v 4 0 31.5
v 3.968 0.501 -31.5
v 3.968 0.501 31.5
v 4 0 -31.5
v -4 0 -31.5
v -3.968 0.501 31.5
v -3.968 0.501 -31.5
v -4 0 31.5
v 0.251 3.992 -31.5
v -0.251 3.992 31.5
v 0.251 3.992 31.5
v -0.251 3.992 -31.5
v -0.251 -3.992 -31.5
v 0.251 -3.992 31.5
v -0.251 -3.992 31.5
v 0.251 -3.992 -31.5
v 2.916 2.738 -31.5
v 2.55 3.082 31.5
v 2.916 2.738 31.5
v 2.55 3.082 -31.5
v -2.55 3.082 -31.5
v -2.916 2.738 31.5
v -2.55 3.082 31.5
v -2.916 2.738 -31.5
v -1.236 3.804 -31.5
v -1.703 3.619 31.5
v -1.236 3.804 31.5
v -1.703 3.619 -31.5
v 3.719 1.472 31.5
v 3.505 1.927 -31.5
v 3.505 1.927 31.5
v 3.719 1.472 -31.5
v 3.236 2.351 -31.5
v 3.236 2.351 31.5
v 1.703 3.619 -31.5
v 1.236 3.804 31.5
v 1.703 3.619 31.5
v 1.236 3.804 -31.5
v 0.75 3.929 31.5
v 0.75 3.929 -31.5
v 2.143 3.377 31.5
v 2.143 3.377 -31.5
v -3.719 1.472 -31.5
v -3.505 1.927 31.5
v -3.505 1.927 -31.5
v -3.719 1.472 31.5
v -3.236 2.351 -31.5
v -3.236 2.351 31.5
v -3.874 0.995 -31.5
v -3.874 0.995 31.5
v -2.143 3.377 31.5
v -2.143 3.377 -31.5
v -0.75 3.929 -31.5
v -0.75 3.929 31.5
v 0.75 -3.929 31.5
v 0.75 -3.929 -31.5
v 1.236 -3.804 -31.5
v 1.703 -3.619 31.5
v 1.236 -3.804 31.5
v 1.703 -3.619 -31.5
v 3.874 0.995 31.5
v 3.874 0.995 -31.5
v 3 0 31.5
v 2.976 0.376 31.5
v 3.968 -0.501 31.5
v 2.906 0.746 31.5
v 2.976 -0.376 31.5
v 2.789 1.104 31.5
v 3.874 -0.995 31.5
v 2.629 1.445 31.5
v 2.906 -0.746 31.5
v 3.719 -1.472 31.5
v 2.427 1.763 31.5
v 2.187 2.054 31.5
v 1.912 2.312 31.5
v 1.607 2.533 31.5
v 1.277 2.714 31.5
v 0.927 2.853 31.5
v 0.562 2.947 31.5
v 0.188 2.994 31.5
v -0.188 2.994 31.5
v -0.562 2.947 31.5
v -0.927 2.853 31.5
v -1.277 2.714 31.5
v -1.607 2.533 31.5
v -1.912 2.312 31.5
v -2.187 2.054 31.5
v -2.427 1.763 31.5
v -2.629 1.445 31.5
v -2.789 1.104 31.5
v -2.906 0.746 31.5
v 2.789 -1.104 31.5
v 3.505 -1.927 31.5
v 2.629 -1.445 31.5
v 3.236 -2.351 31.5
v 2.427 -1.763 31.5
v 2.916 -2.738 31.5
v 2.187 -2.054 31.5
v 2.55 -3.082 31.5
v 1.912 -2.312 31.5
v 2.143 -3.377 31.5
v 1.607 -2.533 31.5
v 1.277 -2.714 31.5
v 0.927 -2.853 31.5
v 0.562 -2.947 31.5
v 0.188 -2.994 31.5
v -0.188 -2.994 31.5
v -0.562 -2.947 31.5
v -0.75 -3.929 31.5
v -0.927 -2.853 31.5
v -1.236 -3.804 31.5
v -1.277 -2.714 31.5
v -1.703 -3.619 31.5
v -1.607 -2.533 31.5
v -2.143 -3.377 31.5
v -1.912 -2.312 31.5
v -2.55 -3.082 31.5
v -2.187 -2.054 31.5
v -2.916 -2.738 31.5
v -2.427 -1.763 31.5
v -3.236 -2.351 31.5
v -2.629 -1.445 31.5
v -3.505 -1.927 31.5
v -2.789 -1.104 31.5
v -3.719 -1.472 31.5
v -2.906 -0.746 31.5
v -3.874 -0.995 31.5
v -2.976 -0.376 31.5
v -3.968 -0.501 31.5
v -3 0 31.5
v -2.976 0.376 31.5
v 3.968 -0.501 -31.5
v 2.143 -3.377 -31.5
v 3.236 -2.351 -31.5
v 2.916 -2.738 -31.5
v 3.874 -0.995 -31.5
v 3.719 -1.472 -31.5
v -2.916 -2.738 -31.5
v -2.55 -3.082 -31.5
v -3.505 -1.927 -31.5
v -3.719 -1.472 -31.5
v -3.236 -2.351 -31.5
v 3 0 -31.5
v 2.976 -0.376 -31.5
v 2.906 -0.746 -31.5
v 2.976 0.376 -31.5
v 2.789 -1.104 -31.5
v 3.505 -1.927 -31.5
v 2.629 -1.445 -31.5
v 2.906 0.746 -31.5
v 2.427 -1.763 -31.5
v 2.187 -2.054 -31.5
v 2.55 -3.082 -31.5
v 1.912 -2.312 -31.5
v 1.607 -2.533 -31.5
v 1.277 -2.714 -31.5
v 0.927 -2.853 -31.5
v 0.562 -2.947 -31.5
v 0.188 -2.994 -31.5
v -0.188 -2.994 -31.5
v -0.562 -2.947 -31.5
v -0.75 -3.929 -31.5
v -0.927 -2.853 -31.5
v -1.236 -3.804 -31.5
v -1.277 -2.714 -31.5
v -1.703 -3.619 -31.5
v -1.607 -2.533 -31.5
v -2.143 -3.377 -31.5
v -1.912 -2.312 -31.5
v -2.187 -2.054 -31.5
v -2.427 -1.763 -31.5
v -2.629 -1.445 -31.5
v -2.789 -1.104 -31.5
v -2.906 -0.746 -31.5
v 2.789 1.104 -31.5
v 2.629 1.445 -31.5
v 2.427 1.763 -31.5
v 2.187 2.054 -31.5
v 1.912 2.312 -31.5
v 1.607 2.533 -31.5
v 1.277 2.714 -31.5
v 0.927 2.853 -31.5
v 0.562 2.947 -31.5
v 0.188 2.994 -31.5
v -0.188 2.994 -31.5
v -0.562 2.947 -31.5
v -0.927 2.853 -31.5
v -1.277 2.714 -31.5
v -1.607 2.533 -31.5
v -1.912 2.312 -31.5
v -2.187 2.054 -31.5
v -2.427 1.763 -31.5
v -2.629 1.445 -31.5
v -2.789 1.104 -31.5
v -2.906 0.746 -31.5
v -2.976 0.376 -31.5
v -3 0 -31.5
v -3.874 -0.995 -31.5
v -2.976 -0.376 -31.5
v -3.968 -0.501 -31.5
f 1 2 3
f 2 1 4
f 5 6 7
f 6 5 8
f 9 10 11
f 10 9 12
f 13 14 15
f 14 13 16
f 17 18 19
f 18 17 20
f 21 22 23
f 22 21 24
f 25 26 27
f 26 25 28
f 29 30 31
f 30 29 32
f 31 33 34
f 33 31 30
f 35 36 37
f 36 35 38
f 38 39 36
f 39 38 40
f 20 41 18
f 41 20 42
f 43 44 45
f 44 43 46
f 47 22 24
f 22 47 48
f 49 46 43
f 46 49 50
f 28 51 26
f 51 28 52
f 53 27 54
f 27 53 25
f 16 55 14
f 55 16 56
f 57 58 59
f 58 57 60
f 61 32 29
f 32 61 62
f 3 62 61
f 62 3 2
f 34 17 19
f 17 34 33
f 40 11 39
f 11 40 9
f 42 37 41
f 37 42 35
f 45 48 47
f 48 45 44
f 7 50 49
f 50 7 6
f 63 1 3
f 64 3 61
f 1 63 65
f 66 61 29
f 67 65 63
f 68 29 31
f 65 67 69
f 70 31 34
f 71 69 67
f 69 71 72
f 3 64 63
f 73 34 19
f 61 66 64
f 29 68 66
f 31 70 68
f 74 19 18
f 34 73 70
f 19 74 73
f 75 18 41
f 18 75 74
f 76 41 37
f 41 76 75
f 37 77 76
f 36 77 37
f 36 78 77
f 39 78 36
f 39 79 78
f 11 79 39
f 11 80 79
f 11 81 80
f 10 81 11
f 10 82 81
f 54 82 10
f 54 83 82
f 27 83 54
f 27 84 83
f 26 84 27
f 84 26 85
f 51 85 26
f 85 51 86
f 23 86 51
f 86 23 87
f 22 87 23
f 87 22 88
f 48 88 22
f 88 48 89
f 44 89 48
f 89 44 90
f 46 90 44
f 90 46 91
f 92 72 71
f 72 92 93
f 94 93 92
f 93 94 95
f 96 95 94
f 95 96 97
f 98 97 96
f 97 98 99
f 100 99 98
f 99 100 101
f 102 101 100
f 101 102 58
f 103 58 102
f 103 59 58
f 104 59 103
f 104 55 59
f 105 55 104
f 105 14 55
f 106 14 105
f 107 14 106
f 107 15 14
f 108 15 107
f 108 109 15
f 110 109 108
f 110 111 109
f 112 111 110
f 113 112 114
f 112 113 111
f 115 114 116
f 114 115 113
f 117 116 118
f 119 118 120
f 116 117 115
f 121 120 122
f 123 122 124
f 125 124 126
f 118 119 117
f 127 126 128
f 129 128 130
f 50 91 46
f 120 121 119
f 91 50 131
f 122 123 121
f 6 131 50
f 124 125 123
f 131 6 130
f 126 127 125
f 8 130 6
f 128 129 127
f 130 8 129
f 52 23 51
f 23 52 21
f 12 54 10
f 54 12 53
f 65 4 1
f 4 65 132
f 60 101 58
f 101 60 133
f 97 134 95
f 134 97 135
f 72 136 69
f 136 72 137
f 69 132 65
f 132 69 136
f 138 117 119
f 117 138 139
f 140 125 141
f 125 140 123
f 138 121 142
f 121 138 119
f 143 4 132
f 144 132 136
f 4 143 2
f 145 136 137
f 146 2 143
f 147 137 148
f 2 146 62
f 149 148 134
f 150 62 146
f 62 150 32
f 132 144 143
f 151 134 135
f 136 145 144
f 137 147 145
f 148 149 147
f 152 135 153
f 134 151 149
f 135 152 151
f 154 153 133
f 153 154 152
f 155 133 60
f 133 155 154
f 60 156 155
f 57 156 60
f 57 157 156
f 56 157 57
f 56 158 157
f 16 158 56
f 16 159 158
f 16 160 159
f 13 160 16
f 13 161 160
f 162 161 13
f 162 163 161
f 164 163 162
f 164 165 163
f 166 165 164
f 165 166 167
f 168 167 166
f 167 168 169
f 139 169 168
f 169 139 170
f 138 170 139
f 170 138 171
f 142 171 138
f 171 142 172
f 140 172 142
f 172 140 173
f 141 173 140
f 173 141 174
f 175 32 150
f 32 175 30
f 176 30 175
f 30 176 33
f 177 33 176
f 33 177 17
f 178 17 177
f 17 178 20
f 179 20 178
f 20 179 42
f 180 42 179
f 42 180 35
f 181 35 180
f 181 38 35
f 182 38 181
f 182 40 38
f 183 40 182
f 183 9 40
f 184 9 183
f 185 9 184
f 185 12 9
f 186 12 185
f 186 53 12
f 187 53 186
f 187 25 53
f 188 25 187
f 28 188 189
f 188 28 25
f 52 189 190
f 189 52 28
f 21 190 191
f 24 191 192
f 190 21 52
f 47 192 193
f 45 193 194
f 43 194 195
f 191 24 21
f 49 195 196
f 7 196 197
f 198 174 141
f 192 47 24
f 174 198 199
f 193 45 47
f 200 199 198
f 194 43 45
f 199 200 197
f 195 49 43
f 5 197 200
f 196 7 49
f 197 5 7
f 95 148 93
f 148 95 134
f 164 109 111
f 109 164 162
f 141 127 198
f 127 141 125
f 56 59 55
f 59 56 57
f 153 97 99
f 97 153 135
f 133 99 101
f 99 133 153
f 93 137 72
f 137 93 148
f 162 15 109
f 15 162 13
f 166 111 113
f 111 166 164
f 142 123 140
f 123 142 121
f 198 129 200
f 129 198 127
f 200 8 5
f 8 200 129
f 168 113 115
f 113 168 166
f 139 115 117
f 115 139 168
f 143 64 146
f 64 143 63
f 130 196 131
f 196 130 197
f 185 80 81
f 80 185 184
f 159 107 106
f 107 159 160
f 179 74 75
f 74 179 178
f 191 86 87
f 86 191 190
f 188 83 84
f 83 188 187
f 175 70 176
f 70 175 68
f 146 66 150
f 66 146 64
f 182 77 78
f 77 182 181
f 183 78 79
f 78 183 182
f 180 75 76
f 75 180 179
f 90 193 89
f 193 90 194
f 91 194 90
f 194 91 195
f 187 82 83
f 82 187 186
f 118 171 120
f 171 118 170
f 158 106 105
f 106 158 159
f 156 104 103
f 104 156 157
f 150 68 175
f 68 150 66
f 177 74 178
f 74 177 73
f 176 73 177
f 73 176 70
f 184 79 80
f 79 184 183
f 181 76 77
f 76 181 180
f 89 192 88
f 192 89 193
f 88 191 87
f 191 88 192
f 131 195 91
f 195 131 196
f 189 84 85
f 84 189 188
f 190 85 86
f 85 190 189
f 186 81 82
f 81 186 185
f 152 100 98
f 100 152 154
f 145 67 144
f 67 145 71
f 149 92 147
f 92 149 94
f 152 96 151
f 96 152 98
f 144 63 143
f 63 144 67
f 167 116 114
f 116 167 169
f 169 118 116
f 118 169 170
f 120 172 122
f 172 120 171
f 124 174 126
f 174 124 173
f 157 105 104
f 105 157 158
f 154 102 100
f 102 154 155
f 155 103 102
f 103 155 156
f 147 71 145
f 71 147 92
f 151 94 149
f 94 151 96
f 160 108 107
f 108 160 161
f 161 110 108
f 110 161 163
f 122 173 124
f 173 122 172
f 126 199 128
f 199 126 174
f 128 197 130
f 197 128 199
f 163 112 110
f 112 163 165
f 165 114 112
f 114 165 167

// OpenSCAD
$fn = 50;


difference() {
	union() {
		translate(v = [0, 0, -31.5000000000]) {
			cylinder(h = 63, r = 4.0000000000);
		}
	}
	union() {
		translate(v = [0, 0, -100.0000000000]) {
			cylinder(h = 200, r = 3);
		}
	}
}
